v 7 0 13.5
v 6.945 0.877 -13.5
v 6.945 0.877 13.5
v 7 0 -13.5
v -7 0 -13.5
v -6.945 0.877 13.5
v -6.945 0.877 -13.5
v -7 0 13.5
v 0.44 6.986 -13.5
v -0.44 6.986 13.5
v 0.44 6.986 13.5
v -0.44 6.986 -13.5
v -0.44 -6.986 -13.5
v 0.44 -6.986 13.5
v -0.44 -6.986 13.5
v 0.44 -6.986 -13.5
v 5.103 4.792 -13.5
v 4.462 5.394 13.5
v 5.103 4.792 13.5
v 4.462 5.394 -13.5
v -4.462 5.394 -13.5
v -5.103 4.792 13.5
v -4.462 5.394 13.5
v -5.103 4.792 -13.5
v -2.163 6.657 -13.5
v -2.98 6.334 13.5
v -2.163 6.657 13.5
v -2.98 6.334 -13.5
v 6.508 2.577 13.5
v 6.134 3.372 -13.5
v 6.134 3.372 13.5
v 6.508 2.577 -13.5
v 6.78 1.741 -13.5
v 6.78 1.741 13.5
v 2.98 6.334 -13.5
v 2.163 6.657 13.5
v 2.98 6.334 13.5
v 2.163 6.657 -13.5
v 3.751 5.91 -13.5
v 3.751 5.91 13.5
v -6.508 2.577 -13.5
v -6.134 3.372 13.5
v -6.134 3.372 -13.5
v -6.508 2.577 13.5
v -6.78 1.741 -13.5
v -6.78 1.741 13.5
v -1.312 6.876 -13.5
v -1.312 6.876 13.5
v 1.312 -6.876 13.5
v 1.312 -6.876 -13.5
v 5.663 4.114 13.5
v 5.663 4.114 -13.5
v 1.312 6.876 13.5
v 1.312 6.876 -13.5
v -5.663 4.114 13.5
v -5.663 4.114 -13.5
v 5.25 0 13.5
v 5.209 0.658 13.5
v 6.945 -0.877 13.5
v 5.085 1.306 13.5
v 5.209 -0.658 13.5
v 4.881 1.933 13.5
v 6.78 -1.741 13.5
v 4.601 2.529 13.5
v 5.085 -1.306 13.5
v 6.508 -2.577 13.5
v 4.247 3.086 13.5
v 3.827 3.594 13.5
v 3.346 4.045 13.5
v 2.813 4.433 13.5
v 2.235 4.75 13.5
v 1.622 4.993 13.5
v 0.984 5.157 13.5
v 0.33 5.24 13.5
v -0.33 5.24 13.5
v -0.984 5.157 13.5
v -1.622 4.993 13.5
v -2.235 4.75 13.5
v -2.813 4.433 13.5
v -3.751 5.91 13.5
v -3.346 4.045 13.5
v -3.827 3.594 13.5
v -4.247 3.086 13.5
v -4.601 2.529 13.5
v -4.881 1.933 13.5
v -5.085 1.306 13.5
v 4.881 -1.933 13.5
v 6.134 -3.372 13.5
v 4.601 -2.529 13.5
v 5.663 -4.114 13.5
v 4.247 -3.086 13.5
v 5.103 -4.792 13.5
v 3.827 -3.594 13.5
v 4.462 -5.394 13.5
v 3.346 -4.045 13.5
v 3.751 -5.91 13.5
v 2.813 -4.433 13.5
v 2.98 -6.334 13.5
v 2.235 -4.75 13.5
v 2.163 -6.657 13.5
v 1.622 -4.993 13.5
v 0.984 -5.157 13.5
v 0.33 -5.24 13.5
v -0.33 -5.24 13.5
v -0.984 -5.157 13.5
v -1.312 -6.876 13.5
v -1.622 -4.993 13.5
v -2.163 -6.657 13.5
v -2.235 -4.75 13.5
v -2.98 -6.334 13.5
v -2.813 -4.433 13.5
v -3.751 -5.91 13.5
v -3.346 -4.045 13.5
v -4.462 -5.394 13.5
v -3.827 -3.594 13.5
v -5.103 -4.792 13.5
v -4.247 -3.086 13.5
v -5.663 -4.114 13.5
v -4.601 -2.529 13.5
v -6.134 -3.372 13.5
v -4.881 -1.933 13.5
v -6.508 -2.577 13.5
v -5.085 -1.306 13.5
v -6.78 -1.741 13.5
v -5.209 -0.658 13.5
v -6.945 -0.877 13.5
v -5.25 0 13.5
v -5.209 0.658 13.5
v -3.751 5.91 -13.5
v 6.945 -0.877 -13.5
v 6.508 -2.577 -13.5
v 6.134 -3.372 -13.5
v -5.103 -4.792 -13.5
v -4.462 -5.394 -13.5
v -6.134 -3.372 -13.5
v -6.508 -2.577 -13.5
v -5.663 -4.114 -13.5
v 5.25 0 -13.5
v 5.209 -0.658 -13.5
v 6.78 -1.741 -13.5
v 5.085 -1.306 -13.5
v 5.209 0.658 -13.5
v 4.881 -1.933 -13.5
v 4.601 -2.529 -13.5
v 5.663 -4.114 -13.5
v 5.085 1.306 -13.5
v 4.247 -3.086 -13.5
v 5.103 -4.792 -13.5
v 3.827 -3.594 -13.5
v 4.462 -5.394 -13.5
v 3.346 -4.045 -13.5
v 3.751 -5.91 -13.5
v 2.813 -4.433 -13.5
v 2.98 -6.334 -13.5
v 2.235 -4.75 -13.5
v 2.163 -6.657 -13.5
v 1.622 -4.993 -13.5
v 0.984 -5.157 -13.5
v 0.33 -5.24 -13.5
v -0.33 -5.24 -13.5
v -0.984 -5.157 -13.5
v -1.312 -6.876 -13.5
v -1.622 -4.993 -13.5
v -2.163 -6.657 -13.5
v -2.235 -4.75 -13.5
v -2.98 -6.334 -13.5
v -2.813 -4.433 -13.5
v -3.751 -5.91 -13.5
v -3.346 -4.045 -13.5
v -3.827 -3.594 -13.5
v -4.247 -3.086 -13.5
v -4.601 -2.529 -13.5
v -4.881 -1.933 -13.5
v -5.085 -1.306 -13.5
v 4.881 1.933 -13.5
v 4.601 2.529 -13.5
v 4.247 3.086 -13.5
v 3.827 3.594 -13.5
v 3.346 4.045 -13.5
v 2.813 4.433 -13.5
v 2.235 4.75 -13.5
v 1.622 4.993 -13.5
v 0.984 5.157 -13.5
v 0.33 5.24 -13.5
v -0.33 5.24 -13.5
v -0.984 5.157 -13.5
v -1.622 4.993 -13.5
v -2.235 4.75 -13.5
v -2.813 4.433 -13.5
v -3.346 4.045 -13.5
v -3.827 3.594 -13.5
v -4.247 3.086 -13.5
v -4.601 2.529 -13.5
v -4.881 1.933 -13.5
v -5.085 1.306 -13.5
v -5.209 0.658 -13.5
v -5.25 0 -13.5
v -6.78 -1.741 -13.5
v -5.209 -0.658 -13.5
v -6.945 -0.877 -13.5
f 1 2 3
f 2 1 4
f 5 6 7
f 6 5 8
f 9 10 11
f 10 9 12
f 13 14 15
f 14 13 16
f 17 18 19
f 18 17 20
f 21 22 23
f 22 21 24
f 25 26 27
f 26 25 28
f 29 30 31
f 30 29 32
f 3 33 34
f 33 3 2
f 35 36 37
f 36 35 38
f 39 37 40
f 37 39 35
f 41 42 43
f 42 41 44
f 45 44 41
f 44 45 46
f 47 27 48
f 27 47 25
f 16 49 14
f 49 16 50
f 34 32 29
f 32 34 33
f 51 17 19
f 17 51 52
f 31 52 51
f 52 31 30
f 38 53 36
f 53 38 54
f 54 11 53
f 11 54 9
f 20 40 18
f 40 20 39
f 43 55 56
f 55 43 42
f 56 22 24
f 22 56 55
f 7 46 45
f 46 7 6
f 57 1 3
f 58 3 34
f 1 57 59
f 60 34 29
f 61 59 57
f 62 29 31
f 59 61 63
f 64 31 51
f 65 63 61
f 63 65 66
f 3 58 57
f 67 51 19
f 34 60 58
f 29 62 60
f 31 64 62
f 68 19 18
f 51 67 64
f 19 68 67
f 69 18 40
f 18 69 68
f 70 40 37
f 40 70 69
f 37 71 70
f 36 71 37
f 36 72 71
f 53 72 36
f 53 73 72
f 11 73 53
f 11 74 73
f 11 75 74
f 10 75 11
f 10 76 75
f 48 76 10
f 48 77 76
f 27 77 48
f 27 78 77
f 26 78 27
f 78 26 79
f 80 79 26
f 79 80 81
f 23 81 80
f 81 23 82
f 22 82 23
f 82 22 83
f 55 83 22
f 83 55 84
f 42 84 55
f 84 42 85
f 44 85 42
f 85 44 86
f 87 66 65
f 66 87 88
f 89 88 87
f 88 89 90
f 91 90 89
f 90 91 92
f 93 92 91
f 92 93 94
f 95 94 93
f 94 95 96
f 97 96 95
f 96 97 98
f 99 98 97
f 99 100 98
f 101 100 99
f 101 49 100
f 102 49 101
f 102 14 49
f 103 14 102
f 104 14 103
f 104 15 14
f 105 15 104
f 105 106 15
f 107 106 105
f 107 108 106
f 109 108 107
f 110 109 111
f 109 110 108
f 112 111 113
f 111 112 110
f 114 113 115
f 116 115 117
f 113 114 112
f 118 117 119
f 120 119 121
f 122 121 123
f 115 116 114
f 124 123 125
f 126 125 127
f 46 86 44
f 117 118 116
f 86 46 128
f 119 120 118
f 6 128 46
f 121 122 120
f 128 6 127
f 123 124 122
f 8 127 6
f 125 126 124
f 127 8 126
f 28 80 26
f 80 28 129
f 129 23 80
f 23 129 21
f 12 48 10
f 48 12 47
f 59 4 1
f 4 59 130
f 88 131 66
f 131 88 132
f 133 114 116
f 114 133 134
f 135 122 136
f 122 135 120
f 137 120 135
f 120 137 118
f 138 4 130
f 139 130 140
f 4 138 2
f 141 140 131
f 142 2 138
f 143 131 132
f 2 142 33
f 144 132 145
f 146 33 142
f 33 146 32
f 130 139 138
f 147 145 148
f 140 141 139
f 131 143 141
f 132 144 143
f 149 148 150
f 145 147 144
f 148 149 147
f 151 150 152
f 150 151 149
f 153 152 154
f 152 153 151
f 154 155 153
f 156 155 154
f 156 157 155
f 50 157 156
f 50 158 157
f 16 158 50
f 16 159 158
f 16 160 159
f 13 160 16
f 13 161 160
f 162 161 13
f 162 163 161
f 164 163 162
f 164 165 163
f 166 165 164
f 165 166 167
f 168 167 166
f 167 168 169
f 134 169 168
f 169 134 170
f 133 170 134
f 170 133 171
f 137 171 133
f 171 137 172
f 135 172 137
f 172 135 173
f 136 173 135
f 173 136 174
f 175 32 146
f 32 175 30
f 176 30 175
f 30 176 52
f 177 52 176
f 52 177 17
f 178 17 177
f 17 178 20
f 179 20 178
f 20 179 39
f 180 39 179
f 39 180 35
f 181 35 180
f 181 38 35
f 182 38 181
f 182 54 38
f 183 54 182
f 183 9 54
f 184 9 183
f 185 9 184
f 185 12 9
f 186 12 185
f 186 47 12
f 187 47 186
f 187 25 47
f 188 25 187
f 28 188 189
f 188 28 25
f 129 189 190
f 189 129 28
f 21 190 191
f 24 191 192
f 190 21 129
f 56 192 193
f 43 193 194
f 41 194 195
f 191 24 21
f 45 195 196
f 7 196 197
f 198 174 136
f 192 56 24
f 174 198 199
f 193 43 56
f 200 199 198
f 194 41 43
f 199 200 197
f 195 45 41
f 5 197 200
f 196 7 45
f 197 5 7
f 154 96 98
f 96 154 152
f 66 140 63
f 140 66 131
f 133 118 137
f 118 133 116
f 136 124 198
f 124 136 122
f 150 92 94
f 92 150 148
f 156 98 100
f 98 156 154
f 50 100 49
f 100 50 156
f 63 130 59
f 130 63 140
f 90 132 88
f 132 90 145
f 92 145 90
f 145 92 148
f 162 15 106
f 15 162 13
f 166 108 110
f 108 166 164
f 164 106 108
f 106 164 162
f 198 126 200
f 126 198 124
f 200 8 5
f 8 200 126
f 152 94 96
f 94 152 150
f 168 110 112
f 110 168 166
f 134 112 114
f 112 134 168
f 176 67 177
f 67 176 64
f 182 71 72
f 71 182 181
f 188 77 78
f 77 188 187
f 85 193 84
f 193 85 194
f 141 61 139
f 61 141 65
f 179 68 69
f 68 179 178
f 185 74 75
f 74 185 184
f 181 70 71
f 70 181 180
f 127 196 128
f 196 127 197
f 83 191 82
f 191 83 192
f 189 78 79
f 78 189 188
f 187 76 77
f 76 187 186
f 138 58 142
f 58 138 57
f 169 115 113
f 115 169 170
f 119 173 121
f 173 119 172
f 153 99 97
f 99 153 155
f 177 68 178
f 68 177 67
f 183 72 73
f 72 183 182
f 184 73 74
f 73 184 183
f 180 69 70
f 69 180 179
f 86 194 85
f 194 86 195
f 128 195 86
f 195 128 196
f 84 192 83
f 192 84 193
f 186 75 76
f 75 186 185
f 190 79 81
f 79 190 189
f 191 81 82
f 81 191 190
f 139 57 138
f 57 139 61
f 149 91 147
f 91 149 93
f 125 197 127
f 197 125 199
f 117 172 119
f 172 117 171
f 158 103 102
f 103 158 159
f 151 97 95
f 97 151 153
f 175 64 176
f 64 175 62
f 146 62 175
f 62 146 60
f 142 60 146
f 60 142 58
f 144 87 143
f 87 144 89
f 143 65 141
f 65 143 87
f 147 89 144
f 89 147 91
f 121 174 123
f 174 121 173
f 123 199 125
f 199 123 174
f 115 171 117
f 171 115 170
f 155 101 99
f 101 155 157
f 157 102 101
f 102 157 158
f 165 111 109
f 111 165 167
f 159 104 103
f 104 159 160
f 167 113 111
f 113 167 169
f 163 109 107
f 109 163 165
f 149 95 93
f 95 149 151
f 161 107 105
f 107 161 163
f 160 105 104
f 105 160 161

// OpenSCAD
$fn = 50;


difference() {
	union() {
		translate(v = [0, 0, -13.5000000000]) {
			cylinder(h = 27, r = 7.0000000000);
		}
	}
	union() {
		translate(v = [0, 0, -100.0000000000]) {
			cylinder(h = 200, r = 5.2500000000);
		}
	}
}
